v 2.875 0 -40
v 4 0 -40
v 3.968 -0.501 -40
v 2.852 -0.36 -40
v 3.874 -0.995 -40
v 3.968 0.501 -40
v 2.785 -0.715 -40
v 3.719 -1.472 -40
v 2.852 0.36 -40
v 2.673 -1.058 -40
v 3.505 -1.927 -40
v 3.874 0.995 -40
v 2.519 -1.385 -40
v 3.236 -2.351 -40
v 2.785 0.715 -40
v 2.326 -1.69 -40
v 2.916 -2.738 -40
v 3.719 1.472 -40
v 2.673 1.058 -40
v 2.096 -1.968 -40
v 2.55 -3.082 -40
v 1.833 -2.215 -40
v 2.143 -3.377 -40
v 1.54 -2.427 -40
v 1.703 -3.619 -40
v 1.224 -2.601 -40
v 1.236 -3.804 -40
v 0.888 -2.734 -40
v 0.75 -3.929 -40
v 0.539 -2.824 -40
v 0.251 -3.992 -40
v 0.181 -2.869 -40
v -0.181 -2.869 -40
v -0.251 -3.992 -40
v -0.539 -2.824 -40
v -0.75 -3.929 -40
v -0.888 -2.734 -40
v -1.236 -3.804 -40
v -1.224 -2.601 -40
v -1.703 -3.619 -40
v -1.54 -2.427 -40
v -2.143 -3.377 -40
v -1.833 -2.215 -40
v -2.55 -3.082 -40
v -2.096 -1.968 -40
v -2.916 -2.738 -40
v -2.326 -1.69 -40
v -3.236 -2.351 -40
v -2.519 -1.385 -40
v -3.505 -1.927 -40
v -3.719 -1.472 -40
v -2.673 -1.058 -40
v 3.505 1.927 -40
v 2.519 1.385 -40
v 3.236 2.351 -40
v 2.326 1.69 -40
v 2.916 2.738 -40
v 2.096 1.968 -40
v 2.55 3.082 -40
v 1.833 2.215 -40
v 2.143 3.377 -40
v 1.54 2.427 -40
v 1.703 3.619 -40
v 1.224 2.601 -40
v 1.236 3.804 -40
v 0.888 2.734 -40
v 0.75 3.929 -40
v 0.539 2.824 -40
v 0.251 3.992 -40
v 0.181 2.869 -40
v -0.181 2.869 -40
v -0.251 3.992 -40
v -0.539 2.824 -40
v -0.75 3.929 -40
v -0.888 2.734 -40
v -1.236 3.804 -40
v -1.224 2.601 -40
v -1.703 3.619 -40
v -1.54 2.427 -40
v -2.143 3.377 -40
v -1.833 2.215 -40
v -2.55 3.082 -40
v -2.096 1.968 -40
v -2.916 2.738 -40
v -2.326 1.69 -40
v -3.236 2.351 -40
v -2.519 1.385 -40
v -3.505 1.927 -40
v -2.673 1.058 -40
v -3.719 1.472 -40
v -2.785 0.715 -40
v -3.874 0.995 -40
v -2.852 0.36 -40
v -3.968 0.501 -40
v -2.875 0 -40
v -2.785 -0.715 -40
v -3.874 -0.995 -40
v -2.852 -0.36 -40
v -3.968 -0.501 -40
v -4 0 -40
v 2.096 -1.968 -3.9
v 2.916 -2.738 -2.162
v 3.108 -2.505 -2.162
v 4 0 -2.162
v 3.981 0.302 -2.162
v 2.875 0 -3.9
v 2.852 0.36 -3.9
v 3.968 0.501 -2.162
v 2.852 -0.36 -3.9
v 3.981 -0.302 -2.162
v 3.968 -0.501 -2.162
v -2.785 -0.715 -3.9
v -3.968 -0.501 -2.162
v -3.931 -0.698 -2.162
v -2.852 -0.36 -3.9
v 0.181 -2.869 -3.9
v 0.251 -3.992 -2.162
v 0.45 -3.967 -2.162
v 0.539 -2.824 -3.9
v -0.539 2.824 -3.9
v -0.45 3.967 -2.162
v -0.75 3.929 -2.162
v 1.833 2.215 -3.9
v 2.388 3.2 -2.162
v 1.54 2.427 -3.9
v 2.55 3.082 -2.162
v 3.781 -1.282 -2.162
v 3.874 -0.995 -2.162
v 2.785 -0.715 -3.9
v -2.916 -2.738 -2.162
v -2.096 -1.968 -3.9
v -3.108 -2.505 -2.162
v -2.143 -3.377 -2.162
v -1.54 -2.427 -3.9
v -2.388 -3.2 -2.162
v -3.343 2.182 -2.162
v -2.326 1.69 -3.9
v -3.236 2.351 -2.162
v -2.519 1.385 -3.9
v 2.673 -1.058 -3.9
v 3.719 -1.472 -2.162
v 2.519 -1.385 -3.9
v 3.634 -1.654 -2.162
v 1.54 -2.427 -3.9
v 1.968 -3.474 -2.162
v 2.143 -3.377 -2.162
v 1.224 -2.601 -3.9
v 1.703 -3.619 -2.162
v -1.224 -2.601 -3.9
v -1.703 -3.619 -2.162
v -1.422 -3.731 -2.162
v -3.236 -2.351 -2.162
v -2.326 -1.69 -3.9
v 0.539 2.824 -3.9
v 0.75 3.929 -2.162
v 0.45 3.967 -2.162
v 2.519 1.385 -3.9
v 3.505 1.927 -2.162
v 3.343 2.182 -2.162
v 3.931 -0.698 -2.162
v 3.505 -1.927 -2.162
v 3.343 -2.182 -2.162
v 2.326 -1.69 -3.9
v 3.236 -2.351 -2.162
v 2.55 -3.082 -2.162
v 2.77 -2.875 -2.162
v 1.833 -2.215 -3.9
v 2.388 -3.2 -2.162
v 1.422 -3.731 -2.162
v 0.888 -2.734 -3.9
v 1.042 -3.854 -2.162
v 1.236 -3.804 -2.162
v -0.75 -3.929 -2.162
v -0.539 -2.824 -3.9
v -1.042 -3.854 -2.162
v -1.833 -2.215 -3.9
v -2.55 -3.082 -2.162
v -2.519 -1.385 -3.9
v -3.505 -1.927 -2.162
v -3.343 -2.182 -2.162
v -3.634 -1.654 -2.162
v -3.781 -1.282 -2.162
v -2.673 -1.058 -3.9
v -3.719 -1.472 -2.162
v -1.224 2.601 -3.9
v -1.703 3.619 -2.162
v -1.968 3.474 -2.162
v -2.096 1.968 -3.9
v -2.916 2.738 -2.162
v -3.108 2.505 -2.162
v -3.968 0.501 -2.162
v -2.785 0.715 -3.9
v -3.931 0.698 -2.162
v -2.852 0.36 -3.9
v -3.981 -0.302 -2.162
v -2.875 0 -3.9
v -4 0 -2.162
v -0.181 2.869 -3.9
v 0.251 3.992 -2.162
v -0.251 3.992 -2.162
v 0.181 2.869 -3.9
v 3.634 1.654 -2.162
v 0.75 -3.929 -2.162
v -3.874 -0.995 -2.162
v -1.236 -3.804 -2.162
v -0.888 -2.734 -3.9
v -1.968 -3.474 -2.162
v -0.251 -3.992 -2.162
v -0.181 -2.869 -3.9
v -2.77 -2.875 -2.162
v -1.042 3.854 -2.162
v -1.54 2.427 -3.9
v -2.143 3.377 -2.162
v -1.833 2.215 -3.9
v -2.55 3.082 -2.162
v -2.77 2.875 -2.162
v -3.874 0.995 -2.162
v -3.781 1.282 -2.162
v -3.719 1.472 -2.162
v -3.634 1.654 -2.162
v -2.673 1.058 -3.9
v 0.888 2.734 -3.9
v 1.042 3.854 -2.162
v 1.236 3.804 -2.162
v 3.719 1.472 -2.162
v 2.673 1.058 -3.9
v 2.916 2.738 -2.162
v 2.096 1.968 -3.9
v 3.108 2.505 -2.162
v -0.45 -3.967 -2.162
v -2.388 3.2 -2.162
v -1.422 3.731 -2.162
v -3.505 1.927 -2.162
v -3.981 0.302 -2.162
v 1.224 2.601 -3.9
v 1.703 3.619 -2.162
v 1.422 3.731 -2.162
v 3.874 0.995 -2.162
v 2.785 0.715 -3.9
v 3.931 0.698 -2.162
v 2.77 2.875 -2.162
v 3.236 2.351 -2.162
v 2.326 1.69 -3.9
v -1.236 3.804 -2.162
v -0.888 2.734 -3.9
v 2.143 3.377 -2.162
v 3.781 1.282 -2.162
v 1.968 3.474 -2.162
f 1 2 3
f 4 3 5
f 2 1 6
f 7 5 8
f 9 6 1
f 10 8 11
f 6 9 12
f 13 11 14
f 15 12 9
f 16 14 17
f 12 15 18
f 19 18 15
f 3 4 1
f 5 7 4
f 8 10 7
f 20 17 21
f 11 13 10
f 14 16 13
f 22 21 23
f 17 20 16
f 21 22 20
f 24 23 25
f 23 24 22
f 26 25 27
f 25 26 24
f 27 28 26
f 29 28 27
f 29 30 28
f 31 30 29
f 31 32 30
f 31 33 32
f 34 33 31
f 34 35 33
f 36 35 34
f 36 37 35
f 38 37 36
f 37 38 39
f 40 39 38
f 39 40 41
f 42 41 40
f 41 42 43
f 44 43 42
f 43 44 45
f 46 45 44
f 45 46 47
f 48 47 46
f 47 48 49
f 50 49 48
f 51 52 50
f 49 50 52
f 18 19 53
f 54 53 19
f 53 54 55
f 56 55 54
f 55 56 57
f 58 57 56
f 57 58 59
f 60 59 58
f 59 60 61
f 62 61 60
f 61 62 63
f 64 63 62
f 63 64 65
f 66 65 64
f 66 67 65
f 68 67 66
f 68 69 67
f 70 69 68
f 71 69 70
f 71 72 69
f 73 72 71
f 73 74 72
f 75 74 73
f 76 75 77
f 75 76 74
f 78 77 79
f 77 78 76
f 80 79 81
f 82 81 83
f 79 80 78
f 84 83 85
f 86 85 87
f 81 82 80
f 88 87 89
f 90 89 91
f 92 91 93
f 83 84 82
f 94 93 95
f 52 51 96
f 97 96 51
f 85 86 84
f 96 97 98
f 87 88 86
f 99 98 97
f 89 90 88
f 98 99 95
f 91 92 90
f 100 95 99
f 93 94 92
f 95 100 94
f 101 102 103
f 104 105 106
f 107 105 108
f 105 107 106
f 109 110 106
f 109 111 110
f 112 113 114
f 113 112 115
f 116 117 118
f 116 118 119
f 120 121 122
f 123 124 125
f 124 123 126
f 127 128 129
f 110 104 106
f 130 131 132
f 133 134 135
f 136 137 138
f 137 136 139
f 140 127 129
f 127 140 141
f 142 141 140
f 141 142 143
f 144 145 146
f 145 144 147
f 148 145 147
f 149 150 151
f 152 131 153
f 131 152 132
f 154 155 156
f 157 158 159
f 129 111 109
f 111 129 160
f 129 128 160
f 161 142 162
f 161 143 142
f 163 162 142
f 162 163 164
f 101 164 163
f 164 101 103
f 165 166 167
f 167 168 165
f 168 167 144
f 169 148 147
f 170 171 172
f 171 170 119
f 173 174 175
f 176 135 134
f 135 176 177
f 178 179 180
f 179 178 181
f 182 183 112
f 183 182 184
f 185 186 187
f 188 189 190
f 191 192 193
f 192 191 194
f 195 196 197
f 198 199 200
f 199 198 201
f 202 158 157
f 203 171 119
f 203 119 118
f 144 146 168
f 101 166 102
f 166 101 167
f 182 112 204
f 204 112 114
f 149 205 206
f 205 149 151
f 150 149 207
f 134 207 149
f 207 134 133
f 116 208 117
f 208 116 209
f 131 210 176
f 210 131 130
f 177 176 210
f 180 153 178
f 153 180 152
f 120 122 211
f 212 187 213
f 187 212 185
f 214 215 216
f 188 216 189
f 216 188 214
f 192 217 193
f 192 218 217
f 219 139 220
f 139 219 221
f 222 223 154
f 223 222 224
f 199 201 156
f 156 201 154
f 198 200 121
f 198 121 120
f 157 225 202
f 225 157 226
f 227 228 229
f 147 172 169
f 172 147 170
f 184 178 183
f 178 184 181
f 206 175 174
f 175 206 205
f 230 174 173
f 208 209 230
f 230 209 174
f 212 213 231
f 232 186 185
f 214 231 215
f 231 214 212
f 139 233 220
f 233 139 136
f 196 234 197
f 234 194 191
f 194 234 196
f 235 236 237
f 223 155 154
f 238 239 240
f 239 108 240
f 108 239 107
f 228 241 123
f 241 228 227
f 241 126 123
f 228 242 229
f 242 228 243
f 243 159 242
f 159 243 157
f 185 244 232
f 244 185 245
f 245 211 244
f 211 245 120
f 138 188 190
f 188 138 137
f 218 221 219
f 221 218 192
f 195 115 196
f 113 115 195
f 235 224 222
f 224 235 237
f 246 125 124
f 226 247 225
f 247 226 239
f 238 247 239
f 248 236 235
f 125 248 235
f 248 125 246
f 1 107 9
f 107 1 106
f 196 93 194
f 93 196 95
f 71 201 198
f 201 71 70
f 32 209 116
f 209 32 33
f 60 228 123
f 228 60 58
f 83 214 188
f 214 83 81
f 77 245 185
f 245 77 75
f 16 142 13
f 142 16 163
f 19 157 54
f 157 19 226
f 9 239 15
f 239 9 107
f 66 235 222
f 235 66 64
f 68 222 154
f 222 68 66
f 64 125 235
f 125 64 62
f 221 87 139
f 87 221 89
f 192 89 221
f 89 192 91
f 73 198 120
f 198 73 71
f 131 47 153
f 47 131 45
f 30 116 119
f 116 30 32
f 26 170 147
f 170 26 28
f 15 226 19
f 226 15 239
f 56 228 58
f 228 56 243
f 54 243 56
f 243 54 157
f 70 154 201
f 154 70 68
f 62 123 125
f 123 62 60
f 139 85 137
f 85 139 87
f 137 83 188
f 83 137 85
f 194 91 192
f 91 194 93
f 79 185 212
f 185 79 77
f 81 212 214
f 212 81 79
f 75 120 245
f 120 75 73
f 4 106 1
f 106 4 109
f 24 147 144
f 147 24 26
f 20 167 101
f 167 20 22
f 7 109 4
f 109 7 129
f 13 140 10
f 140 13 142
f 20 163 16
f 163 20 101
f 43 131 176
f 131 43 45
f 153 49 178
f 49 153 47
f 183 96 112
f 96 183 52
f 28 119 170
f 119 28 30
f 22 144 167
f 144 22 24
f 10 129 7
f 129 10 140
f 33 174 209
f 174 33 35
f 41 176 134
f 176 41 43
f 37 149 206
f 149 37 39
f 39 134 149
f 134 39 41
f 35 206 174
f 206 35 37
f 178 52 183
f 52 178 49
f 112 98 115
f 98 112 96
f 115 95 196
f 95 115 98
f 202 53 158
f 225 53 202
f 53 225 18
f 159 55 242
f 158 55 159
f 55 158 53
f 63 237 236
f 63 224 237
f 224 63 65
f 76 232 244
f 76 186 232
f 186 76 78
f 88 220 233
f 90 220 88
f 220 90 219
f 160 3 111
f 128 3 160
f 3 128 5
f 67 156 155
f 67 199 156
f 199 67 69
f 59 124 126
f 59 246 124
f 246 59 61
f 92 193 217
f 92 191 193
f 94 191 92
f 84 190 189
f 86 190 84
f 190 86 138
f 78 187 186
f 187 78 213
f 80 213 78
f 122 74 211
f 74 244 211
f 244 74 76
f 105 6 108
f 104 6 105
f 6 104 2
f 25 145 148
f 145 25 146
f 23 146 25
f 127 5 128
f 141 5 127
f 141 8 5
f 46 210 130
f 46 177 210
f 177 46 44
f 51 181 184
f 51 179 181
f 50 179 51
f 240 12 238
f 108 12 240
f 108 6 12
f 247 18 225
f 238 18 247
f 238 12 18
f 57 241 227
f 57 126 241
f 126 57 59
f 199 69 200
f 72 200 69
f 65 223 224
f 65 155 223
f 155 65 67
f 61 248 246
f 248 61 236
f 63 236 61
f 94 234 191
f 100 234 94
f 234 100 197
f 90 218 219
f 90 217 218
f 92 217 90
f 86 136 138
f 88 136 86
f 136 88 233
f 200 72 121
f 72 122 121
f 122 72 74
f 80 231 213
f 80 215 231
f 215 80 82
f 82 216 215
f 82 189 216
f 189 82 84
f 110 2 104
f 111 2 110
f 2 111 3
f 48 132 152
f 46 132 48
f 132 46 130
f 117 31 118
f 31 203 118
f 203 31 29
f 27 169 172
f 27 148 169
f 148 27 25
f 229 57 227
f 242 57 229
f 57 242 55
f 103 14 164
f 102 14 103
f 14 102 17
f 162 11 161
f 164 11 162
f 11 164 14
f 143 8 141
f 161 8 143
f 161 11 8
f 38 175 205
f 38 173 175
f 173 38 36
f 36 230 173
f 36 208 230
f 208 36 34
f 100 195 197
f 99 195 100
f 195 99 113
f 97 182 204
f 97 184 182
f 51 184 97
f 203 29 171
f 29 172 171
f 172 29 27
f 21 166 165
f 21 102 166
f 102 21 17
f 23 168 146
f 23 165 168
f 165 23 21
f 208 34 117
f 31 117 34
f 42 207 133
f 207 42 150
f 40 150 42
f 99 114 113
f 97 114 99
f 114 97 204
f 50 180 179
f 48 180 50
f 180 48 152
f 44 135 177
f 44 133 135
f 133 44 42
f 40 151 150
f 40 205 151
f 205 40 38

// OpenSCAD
$fn = 50;


difference() {
	union() {
		translate(v = [0, 0, -40.0000000000]) {
			cylinder(h = 40, r = 4.0000000000);
		}
		cylinder(h = 0, r = 7.0000000000);
	}
	union() {
		translate(v = [0, 0, 0]) {
			rotate(a = [0, 0, 0]) {
				difference() {
					union() {
						#translate(v = [0, 0, -40.0000000000]) {
							cylinder(h = 40, r = 2.6000000000);
						}
						#translate(v = [0, 0, -3.9000000000]) {
							cylinder(h = 3.9000000000, r = 4.0000000000, r1 = 2.8750000000, r2 = 5.4000000000);
						}
						#translate(v = [0, 0, -40.0000000000]) {
							cylinder(h = 40, r = 2.8750000000);
						}
						#translate(v = [0, 0, -40.0000000000]) {
							cylinder(h = 40, r = 2.6000000000);
						}
					}
					union();
				}
			}
		}
	}
}
